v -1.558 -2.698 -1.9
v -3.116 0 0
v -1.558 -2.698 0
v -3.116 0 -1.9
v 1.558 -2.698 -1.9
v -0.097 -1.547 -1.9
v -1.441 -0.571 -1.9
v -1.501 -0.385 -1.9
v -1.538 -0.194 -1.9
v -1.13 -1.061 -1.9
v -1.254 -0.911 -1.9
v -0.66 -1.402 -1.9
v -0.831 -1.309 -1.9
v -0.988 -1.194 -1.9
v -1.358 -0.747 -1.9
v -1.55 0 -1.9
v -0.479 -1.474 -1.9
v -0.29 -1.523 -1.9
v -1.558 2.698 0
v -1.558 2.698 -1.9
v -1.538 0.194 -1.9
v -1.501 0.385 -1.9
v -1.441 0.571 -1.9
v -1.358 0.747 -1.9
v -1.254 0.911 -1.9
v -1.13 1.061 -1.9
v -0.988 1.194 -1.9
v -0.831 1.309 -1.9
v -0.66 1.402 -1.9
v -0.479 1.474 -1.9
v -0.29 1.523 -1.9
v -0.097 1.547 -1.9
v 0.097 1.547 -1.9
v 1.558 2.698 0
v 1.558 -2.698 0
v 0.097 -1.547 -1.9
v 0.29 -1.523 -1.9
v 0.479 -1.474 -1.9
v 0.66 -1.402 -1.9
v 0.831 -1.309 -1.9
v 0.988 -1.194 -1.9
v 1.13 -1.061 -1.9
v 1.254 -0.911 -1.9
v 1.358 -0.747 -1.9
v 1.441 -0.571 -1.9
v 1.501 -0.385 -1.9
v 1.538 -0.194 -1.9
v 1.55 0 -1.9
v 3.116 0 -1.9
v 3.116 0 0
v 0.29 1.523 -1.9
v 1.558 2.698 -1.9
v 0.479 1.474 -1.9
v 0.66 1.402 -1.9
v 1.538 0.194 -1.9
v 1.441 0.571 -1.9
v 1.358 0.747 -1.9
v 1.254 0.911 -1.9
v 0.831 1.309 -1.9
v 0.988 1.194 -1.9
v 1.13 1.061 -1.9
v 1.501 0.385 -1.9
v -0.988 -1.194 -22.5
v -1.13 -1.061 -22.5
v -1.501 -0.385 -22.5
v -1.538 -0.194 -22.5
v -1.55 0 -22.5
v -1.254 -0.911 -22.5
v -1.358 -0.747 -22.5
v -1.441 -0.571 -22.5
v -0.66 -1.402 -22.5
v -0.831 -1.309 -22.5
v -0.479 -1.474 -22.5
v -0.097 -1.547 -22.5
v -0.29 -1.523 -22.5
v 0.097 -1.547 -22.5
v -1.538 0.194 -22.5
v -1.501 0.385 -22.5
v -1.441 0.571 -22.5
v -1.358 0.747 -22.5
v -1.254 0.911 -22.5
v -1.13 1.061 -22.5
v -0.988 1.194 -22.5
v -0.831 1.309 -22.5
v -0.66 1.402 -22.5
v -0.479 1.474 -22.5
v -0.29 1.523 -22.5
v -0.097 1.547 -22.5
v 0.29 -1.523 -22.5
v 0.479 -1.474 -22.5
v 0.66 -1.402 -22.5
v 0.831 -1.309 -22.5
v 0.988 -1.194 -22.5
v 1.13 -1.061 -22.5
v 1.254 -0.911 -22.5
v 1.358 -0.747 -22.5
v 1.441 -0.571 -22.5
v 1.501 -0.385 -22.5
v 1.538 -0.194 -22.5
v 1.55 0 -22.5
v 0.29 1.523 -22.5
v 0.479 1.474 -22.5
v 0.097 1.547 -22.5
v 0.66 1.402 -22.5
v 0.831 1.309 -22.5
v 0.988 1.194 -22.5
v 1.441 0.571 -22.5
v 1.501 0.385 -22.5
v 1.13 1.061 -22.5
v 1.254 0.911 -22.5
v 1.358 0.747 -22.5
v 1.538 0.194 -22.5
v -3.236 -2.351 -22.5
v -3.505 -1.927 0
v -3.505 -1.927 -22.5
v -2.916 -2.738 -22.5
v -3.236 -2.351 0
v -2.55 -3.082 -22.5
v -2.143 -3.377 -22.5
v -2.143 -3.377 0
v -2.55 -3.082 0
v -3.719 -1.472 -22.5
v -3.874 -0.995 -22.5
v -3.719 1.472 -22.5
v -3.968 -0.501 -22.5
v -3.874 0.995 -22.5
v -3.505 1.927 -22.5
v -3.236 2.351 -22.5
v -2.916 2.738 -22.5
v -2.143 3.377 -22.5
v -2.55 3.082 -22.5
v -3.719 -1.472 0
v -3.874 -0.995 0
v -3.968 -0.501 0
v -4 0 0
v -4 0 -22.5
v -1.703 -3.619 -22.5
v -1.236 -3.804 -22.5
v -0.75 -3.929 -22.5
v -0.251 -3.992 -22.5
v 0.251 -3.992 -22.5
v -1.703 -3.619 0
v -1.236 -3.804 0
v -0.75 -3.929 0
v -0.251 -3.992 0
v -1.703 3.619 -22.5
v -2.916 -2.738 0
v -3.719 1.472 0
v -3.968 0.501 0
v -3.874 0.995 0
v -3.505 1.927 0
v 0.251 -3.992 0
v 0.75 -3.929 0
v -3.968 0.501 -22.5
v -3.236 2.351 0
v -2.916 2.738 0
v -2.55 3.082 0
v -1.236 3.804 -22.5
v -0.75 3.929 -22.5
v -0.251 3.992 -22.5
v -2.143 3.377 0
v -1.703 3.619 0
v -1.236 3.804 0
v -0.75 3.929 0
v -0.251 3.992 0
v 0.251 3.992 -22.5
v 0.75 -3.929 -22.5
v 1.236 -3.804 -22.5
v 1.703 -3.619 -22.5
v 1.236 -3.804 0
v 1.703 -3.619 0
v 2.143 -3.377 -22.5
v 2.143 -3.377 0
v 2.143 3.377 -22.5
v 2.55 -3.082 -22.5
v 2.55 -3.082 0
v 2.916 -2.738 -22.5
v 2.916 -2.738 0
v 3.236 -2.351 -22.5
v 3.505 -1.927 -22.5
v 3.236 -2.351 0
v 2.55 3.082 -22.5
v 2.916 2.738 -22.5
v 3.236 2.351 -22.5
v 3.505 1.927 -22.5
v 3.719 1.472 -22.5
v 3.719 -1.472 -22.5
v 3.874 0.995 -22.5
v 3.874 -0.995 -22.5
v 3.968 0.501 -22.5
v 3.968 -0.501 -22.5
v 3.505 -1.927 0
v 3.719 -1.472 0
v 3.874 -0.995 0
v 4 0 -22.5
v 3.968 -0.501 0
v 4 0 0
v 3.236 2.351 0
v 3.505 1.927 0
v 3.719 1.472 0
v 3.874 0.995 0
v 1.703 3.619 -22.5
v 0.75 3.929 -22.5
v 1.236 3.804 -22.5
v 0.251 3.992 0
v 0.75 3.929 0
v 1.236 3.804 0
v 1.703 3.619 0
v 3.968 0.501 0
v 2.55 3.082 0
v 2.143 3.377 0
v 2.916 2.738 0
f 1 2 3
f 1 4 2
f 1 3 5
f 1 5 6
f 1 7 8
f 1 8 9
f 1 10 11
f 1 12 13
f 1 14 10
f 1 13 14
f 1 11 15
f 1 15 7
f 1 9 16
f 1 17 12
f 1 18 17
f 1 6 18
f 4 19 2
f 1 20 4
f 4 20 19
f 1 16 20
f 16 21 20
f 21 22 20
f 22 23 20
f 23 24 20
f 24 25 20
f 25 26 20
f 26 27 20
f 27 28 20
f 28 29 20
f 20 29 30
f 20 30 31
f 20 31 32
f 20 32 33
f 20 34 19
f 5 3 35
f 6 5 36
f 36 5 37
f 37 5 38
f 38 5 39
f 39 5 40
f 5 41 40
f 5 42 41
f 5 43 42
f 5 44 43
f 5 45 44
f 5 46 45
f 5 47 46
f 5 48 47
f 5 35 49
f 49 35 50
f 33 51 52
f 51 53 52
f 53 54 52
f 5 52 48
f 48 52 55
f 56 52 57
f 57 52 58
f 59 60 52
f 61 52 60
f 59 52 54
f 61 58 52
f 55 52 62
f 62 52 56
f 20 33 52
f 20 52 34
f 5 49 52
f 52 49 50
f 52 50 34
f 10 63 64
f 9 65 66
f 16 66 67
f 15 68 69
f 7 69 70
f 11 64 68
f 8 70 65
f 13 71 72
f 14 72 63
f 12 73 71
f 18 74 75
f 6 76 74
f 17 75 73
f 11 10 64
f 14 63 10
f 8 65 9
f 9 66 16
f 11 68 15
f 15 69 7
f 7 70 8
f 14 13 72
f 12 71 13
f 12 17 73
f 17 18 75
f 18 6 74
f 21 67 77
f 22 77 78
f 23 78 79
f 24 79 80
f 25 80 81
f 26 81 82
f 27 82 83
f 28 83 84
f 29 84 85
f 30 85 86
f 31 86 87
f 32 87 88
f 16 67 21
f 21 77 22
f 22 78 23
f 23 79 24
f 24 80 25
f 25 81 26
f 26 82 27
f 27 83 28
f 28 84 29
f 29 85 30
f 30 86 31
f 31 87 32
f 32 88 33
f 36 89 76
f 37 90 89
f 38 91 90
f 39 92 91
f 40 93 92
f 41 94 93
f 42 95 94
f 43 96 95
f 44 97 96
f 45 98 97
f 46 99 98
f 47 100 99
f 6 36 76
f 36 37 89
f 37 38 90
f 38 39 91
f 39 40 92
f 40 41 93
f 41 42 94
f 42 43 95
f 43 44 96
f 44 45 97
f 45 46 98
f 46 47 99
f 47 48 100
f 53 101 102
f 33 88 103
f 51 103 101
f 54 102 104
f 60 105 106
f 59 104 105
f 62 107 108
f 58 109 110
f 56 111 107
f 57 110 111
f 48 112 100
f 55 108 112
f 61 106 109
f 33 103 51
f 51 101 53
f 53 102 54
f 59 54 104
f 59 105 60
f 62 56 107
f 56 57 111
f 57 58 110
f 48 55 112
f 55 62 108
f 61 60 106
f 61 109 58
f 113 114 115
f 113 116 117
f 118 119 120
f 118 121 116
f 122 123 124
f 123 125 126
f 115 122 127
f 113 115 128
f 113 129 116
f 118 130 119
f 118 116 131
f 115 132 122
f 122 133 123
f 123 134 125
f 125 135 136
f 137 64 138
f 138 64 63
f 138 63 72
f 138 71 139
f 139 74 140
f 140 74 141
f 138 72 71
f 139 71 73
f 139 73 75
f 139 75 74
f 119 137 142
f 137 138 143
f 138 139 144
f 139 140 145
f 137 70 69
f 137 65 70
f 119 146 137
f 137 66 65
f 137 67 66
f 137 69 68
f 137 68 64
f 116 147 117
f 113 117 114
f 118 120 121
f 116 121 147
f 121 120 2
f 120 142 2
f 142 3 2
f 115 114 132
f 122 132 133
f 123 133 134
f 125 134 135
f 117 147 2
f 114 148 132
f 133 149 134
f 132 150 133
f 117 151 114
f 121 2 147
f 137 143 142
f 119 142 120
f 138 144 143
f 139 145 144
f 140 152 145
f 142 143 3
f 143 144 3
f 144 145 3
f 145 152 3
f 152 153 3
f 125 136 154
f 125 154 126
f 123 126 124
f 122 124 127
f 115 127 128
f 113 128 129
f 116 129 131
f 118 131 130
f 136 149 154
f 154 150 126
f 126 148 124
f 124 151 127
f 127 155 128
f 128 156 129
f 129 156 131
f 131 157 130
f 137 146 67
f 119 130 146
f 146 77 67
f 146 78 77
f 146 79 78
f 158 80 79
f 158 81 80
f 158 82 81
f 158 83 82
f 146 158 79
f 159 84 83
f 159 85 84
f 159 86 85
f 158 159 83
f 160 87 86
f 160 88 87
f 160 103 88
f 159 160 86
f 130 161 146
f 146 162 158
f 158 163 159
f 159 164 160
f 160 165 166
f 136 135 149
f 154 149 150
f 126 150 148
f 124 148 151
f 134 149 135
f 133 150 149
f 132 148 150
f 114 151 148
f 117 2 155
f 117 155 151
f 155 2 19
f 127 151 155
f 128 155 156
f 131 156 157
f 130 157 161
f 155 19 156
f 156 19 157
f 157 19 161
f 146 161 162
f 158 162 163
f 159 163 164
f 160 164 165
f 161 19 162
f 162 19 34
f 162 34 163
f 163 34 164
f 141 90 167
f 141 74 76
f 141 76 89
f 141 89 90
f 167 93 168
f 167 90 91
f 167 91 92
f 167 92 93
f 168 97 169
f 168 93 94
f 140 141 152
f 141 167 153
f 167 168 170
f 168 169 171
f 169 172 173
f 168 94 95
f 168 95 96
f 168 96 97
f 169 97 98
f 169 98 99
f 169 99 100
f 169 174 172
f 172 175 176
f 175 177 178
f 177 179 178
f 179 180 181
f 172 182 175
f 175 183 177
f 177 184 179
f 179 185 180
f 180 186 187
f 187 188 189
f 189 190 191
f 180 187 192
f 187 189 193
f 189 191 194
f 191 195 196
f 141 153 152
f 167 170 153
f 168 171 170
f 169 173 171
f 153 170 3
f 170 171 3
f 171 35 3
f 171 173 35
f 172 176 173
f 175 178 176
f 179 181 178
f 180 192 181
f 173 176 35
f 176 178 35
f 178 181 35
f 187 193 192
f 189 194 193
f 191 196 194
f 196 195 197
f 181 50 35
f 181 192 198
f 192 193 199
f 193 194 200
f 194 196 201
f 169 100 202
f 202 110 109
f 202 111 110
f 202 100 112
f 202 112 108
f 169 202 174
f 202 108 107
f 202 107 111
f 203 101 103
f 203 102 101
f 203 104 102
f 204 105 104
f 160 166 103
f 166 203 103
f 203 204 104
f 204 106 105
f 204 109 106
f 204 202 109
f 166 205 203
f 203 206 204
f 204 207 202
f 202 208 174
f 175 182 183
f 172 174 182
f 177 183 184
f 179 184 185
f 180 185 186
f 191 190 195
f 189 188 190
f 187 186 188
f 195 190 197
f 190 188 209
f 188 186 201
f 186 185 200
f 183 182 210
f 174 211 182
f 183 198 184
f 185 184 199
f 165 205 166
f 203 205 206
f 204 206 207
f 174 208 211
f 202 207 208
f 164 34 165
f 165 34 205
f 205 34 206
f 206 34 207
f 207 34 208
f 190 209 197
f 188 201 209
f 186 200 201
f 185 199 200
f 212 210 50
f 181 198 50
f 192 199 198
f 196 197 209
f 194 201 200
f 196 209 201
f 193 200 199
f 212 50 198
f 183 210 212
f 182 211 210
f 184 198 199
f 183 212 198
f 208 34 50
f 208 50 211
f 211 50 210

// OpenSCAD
$fn = 50;

difference() {
	union() {
		translate(v = [0, 0, -22.5]) {
			cylinder(h = 22.5, r = 4.0);
		}
	}
	union() {
		translate(v = [0, 0, 0]) {
			rotate(a = [0, 0, 0]) {
				difference() {
					union() {
						translate(v = [0, 0, -1.9]) {
							linear_extrude(height = 1.9) {
								polygon(points = [[3.1158, 0.0], [1.5579000000000005, 2.698361953111554], [-1.5578999999999994, 2.6983619531115544], [-3.1158, 3.815754496783323e-16], [-1.5579000000000014, -2.6983619531115535], [1.557899999999998, -2.6983619531115552]]);
							}
						}
					}
					union();
				}
			}
		}
		#translate(v = [0, 0, -100.0]) {
			cylinder(h = 200, r = 1.55);
		}
	}
}
